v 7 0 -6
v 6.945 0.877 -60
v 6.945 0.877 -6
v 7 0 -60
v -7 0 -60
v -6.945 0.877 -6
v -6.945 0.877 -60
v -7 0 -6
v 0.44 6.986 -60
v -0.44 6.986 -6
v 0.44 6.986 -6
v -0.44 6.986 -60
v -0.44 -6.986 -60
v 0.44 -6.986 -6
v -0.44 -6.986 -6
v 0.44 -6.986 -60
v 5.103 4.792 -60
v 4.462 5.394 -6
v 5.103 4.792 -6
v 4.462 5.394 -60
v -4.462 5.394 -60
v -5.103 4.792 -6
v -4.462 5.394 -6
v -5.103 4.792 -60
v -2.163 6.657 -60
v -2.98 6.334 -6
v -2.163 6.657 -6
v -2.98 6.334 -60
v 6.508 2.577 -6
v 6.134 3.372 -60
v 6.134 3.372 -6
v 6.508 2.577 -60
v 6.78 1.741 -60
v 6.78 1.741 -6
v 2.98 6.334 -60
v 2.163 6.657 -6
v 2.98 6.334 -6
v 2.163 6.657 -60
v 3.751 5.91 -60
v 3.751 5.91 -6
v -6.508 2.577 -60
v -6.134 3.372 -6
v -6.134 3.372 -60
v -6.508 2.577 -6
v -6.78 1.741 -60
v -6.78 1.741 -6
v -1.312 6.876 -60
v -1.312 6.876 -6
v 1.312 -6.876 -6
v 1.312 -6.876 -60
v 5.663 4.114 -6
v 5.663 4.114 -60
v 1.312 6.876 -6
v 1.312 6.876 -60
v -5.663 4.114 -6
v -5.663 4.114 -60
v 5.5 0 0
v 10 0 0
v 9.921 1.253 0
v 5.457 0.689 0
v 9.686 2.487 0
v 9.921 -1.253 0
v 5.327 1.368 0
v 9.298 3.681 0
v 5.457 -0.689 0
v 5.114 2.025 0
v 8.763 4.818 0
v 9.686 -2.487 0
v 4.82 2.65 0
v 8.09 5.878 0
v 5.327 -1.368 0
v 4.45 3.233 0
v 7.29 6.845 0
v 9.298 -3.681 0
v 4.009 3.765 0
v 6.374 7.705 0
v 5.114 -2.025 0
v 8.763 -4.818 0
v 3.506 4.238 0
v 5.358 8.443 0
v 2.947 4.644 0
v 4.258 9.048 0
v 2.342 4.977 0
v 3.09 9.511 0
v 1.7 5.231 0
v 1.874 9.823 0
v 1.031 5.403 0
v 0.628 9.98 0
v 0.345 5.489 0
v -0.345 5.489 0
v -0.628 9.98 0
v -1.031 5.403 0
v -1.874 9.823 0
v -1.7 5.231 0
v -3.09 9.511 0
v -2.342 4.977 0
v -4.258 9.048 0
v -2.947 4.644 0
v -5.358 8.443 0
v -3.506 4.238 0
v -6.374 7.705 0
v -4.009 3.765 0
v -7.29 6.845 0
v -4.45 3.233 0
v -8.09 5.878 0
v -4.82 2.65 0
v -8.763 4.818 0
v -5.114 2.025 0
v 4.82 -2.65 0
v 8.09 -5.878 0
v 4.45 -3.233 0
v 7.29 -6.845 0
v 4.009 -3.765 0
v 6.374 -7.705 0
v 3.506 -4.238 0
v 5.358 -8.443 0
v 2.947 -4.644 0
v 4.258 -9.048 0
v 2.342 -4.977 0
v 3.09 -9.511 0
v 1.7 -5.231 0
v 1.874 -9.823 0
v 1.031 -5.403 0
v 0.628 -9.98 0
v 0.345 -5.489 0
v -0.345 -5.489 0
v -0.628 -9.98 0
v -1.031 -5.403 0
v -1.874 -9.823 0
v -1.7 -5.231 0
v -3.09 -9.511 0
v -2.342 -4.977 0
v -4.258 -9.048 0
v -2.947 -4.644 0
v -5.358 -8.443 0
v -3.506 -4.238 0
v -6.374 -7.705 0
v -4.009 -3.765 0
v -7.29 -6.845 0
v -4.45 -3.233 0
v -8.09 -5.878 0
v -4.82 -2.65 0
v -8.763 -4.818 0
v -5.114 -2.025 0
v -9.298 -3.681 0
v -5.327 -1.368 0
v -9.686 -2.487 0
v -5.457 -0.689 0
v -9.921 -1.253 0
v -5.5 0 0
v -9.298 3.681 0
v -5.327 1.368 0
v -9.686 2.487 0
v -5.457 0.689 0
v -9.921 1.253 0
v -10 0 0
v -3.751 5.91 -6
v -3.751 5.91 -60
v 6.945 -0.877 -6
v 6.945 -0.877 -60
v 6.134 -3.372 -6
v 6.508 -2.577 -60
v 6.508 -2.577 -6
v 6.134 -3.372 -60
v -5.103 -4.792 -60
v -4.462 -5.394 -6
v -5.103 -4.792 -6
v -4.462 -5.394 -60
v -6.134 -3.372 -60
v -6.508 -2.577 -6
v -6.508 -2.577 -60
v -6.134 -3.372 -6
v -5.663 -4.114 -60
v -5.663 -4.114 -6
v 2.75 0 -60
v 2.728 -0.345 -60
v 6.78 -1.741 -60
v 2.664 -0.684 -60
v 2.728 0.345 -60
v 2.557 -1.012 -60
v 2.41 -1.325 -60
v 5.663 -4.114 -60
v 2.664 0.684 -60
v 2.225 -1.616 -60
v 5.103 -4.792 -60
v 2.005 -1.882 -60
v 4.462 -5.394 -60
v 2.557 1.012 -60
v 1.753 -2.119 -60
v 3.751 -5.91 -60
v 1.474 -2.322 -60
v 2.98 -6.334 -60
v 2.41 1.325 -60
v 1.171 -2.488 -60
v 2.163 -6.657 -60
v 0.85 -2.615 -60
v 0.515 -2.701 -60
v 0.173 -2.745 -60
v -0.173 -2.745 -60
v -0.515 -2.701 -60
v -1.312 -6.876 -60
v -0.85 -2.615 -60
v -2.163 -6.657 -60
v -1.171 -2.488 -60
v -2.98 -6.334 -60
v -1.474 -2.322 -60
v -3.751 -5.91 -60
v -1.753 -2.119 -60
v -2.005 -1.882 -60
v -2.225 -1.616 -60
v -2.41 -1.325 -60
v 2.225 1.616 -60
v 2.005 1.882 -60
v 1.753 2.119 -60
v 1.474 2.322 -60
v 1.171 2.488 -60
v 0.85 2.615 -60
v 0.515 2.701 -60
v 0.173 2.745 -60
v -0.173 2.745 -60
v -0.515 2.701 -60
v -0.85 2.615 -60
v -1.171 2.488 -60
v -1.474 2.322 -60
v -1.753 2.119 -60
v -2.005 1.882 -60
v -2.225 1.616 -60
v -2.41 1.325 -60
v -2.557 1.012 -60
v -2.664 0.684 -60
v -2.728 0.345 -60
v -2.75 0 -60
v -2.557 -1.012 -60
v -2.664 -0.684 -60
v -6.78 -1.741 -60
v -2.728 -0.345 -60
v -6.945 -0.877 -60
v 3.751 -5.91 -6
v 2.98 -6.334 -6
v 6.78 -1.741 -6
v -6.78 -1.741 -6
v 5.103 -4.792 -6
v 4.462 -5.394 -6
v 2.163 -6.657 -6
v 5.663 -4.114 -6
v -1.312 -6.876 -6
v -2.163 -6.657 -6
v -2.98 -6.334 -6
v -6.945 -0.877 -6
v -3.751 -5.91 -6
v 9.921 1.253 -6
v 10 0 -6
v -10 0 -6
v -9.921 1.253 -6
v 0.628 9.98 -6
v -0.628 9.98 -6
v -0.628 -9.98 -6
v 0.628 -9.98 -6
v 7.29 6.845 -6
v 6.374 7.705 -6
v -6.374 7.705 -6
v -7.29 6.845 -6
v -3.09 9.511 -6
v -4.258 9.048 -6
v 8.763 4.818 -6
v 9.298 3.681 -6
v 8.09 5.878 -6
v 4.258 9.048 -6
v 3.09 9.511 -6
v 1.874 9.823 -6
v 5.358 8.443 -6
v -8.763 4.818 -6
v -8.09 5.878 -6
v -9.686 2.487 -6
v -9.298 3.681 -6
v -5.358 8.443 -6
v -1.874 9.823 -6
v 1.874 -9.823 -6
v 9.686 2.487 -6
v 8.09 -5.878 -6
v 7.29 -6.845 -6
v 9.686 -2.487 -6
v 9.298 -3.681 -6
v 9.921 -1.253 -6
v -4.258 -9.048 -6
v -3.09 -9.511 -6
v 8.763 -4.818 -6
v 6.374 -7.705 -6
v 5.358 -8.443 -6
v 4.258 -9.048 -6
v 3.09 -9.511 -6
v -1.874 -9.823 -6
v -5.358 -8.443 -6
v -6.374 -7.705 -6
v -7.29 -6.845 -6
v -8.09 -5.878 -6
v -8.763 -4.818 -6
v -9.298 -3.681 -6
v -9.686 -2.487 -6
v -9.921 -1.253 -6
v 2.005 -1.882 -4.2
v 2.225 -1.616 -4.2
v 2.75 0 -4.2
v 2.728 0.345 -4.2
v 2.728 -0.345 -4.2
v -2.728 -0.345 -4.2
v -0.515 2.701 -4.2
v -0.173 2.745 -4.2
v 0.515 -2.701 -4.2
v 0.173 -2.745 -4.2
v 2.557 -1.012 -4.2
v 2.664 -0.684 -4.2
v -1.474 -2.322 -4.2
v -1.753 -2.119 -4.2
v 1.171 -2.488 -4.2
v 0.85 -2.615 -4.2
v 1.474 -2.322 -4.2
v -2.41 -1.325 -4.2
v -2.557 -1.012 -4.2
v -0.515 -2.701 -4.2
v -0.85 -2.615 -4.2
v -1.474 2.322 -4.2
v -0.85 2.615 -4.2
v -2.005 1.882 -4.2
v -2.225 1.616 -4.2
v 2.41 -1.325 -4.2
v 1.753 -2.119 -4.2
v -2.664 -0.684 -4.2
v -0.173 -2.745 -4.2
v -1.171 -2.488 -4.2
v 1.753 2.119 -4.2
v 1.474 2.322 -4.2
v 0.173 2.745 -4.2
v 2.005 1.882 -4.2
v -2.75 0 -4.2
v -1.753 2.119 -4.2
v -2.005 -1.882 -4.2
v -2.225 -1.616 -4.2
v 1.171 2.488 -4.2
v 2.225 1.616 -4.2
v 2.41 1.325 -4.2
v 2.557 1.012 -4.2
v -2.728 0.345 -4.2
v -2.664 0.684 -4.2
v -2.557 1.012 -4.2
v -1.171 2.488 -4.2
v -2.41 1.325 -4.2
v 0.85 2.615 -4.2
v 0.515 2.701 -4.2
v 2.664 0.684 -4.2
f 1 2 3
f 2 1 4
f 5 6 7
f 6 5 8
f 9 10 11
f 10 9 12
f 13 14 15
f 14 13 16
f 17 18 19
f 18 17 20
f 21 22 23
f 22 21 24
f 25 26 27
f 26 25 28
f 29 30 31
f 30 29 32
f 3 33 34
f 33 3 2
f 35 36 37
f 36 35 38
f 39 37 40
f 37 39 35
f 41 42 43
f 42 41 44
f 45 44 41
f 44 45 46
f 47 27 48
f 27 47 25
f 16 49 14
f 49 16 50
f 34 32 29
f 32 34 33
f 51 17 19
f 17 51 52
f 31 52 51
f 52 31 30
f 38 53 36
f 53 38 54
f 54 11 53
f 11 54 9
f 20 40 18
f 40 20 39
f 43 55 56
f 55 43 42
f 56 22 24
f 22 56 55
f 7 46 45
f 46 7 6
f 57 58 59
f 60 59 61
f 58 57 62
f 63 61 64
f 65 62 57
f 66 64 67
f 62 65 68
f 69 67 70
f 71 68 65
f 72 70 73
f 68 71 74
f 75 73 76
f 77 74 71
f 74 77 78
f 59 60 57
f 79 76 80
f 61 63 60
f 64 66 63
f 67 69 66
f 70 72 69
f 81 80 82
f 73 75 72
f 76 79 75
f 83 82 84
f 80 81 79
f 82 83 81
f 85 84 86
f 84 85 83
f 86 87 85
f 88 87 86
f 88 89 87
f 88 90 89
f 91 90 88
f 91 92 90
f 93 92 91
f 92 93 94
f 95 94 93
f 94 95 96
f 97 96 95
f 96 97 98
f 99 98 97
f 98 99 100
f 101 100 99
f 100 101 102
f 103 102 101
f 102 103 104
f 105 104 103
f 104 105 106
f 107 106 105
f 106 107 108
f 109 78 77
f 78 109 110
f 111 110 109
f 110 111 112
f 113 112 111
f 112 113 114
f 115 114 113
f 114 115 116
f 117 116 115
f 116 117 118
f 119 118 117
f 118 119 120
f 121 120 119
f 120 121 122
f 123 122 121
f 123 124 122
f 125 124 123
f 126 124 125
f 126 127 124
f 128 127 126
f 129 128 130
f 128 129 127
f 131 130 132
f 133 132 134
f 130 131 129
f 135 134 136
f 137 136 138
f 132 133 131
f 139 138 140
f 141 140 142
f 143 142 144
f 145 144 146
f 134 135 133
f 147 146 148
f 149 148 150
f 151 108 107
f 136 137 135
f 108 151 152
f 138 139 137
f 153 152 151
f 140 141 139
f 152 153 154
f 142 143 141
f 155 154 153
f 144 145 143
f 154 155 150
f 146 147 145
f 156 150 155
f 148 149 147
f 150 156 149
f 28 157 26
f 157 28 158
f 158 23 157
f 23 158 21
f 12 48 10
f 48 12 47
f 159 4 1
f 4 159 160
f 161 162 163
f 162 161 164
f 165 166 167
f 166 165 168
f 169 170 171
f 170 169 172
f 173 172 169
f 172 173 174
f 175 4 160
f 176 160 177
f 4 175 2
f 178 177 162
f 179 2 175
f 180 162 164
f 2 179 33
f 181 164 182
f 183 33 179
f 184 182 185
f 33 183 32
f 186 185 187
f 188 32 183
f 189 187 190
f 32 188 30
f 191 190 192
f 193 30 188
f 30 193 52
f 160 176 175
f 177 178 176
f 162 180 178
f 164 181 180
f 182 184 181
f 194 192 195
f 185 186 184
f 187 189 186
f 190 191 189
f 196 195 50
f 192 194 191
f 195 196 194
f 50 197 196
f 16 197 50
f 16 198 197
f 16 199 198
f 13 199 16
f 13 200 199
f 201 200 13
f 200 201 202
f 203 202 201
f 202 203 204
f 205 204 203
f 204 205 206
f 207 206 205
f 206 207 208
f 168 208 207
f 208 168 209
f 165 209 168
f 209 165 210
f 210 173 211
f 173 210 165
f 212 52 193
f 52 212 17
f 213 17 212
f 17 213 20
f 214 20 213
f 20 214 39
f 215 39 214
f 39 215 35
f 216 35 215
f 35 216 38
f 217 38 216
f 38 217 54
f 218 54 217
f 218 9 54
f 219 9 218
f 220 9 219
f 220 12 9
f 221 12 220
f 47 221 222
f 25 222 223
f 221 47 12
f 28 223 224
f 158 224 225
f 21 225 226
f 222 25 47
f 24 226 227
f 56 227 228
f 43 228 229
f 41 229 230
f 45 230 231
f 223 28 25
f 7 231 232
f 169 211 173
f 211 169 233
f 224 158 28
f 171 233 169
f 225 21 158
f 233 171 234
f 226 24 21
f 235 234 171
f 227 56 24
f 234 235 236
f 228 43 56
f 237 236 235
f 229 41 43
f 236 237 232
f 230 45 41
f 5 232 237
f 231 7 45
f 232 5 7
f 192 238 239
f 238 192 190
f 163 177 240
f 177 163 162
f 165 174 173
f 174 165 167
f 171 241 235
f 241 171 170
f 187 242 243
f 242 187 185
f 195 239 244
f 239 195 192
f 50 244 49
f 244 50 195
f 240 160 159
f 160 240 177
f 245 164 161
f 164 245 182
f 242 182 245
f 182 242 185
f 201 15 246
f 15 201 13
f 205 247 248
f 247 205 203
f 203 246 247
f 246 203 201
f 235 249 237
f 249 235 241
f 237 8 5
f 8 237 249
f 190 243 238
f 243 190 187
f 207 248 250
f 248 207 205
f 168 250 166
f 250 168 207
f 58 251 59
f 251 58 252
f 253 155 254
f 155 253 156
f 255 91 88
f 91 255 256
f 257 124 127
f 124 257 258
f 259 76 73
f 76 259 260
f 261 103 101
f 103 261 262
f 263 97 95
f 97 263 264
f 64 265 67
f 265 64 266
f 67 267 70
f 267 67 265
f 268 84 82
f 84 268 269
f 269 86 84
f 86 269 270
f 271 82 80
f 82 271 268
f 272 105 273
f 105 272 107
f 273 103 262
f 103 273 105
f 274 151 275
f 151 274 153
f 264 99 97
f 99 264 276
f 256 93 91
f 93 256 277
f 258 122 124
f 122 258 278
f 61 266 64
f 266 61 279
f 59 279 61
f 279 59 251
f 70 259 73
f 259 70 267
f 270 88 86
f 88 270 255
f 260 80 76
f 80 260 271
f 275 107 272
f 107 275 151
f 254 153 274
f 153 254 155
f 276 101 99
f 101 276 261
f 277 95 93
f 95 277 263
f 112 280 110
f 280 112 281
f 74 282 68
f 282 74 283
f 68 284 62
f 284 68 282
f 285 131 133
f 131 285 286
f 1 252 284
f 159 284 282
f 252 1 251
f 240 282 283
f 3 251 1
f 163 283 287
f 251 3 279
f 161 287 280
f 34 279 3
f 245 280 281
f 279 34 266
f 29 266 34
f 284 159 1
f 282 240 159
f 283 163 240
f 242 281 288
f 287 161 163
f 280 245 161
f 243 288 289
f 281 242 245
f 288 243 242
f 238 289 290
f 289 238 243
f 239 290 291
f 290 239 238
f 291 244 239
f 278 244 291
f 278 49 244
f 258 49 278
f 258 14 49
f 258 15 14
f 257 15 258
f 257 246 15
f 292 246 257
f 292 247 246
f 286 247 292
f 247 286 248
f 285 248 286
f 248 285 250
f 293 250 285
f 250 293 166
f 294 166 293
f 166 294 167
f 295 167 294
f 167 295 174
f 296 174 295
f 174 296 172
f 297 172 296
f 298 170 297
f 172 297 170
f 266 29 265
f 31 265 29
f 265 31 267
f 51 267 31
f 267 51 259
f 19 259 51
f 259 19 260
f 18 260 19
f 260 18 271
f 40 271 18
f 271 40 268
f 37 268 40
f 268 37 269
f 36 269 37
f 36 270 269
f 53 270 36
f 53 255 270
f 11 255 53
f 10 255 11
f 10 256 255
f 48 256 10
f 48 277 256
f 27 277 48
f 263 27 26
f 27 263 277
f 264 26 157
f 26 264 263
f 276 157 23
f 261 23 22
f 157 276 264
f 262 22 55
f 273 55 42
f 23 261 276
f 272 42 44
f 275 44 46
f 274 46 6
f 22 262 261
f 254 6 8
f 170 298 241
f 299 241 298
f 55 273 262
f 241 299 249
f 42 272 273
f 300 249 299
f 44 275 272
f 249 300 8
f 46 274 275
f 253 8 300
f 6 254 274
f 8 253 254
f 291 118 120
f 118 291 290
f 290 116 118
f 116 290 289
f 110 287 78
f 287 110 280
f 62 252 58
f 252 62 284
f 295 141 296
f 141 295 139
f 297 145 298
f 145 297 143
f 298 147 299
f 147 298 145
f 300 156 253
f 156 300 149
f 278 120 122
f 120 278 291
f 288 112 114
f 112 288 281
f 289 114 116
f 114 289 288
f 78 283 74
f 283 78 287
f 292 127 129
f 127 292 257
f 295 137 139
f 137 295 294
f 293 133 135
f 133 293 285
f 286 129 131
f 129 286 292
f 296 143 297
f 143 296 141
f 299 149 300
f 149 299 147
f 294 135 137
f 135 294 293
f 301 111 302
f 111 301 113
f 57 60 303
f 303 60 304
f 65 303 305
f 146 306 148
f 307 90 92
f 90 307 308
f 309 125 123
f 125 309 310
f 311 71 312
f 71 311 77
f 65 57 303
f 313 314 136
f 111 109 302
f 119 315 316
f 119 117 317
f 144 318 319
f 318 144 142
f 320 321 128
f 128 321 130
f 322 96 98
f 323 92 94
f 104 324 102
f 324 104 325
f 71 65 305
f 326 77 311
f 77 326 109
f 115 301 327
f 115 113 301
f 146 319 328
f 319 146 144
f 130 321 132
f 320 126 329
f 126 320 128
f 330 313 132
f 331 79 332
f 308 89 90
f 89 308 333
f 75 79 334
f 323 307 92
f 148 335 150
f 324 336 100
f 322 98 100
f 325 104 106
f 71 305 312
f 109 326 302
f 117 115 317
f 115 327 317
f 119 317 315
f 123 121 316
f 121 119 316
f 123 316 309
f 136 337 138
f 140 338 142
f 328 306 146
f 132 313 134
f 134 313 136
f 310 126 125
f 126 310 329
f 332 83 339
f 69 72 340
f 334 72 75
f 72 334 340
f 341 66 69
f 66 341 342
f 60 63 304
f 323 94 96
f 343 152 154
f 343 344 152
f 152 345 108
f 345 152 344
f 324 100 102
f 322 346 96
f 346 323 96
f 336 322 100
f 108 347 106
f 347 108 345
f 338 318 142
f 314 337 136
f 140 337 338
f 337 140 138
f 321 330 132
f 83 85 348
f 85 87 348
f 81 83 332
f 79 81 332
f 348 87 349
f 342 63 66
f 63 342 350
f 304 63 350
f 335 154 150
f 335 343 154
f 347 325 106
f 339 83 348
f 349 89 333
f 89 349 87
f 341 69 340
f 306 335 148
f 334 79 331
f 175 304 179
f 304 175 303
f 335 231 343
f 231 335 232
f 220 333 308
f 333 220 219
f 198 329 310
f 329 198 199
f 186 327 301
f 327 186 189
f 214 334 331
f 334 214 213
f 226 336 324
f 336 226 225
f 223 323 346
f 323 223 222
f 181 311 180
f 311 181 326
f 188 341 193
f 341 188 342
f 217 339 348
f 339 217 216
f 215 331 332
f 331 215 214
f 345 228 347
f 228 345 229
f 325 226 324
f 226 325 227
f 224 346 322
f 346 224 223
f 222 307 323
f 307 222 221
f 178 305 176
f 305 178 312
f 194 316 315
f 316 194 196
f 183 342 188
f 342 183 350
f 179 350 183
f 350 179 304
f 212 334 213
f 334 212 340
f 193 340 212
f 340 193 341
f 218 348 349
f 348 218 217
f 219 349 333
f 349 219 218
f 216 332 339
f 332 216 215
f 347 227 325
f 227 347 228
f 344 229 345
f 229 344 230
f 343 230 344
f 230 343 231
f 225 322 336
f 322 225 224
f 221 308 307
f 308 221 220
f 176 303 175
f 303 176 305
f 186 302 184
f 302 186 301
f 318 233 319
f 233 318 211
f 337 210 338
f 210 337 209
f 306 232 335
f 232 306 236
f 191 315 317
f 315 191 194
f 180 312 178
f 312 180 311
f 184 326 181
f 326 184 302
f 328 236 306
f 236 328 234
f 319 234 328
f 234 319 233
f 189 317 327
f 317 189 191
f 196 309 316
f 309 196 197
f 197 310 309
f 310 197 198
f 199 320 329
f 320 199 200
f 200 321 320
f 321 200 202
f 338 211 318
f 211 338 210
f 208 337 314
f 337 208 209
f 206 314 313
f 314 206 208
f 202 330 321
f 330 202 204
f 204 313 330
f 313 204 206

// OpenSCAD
$fn = 50;


difference() {
	union() {
		translate(v = [0, 0, -60.0000000000]) {
			cylinder(h = 60, r = 7.0000000000);
		}
		translate(v = [0, 0, -6.0000000000]) {
			cylinder(h = 6, r = 10.0000000000);
		}
	}
	union() {
		translate(v = [0, 0, 0]) {
			rotate(a = [0, 0, 0]) {
				difference() {
					union() {
						#translate(v = [0, 0, -60.0000000000]) {
							cylinder(h = 60, r = 2.2500000000);
						}
						#translate(v = [0, 0, -4.2000000000]) {
							cylinder(h = 4.2000000000, r1 = 2.7500000000, r2 = 5.5000000000);
						}
						#translate(v = [0, 0, -60.0000000000]) {
							cylinder(h = 60, r = 2.7500000000);
						}
						#translate(v = [0, 0, -60.0000000000]) {
							cylinder(h = 60, r = 2.2500000000);
						}
					}
					union();
				}
			}
		}
	}
}
